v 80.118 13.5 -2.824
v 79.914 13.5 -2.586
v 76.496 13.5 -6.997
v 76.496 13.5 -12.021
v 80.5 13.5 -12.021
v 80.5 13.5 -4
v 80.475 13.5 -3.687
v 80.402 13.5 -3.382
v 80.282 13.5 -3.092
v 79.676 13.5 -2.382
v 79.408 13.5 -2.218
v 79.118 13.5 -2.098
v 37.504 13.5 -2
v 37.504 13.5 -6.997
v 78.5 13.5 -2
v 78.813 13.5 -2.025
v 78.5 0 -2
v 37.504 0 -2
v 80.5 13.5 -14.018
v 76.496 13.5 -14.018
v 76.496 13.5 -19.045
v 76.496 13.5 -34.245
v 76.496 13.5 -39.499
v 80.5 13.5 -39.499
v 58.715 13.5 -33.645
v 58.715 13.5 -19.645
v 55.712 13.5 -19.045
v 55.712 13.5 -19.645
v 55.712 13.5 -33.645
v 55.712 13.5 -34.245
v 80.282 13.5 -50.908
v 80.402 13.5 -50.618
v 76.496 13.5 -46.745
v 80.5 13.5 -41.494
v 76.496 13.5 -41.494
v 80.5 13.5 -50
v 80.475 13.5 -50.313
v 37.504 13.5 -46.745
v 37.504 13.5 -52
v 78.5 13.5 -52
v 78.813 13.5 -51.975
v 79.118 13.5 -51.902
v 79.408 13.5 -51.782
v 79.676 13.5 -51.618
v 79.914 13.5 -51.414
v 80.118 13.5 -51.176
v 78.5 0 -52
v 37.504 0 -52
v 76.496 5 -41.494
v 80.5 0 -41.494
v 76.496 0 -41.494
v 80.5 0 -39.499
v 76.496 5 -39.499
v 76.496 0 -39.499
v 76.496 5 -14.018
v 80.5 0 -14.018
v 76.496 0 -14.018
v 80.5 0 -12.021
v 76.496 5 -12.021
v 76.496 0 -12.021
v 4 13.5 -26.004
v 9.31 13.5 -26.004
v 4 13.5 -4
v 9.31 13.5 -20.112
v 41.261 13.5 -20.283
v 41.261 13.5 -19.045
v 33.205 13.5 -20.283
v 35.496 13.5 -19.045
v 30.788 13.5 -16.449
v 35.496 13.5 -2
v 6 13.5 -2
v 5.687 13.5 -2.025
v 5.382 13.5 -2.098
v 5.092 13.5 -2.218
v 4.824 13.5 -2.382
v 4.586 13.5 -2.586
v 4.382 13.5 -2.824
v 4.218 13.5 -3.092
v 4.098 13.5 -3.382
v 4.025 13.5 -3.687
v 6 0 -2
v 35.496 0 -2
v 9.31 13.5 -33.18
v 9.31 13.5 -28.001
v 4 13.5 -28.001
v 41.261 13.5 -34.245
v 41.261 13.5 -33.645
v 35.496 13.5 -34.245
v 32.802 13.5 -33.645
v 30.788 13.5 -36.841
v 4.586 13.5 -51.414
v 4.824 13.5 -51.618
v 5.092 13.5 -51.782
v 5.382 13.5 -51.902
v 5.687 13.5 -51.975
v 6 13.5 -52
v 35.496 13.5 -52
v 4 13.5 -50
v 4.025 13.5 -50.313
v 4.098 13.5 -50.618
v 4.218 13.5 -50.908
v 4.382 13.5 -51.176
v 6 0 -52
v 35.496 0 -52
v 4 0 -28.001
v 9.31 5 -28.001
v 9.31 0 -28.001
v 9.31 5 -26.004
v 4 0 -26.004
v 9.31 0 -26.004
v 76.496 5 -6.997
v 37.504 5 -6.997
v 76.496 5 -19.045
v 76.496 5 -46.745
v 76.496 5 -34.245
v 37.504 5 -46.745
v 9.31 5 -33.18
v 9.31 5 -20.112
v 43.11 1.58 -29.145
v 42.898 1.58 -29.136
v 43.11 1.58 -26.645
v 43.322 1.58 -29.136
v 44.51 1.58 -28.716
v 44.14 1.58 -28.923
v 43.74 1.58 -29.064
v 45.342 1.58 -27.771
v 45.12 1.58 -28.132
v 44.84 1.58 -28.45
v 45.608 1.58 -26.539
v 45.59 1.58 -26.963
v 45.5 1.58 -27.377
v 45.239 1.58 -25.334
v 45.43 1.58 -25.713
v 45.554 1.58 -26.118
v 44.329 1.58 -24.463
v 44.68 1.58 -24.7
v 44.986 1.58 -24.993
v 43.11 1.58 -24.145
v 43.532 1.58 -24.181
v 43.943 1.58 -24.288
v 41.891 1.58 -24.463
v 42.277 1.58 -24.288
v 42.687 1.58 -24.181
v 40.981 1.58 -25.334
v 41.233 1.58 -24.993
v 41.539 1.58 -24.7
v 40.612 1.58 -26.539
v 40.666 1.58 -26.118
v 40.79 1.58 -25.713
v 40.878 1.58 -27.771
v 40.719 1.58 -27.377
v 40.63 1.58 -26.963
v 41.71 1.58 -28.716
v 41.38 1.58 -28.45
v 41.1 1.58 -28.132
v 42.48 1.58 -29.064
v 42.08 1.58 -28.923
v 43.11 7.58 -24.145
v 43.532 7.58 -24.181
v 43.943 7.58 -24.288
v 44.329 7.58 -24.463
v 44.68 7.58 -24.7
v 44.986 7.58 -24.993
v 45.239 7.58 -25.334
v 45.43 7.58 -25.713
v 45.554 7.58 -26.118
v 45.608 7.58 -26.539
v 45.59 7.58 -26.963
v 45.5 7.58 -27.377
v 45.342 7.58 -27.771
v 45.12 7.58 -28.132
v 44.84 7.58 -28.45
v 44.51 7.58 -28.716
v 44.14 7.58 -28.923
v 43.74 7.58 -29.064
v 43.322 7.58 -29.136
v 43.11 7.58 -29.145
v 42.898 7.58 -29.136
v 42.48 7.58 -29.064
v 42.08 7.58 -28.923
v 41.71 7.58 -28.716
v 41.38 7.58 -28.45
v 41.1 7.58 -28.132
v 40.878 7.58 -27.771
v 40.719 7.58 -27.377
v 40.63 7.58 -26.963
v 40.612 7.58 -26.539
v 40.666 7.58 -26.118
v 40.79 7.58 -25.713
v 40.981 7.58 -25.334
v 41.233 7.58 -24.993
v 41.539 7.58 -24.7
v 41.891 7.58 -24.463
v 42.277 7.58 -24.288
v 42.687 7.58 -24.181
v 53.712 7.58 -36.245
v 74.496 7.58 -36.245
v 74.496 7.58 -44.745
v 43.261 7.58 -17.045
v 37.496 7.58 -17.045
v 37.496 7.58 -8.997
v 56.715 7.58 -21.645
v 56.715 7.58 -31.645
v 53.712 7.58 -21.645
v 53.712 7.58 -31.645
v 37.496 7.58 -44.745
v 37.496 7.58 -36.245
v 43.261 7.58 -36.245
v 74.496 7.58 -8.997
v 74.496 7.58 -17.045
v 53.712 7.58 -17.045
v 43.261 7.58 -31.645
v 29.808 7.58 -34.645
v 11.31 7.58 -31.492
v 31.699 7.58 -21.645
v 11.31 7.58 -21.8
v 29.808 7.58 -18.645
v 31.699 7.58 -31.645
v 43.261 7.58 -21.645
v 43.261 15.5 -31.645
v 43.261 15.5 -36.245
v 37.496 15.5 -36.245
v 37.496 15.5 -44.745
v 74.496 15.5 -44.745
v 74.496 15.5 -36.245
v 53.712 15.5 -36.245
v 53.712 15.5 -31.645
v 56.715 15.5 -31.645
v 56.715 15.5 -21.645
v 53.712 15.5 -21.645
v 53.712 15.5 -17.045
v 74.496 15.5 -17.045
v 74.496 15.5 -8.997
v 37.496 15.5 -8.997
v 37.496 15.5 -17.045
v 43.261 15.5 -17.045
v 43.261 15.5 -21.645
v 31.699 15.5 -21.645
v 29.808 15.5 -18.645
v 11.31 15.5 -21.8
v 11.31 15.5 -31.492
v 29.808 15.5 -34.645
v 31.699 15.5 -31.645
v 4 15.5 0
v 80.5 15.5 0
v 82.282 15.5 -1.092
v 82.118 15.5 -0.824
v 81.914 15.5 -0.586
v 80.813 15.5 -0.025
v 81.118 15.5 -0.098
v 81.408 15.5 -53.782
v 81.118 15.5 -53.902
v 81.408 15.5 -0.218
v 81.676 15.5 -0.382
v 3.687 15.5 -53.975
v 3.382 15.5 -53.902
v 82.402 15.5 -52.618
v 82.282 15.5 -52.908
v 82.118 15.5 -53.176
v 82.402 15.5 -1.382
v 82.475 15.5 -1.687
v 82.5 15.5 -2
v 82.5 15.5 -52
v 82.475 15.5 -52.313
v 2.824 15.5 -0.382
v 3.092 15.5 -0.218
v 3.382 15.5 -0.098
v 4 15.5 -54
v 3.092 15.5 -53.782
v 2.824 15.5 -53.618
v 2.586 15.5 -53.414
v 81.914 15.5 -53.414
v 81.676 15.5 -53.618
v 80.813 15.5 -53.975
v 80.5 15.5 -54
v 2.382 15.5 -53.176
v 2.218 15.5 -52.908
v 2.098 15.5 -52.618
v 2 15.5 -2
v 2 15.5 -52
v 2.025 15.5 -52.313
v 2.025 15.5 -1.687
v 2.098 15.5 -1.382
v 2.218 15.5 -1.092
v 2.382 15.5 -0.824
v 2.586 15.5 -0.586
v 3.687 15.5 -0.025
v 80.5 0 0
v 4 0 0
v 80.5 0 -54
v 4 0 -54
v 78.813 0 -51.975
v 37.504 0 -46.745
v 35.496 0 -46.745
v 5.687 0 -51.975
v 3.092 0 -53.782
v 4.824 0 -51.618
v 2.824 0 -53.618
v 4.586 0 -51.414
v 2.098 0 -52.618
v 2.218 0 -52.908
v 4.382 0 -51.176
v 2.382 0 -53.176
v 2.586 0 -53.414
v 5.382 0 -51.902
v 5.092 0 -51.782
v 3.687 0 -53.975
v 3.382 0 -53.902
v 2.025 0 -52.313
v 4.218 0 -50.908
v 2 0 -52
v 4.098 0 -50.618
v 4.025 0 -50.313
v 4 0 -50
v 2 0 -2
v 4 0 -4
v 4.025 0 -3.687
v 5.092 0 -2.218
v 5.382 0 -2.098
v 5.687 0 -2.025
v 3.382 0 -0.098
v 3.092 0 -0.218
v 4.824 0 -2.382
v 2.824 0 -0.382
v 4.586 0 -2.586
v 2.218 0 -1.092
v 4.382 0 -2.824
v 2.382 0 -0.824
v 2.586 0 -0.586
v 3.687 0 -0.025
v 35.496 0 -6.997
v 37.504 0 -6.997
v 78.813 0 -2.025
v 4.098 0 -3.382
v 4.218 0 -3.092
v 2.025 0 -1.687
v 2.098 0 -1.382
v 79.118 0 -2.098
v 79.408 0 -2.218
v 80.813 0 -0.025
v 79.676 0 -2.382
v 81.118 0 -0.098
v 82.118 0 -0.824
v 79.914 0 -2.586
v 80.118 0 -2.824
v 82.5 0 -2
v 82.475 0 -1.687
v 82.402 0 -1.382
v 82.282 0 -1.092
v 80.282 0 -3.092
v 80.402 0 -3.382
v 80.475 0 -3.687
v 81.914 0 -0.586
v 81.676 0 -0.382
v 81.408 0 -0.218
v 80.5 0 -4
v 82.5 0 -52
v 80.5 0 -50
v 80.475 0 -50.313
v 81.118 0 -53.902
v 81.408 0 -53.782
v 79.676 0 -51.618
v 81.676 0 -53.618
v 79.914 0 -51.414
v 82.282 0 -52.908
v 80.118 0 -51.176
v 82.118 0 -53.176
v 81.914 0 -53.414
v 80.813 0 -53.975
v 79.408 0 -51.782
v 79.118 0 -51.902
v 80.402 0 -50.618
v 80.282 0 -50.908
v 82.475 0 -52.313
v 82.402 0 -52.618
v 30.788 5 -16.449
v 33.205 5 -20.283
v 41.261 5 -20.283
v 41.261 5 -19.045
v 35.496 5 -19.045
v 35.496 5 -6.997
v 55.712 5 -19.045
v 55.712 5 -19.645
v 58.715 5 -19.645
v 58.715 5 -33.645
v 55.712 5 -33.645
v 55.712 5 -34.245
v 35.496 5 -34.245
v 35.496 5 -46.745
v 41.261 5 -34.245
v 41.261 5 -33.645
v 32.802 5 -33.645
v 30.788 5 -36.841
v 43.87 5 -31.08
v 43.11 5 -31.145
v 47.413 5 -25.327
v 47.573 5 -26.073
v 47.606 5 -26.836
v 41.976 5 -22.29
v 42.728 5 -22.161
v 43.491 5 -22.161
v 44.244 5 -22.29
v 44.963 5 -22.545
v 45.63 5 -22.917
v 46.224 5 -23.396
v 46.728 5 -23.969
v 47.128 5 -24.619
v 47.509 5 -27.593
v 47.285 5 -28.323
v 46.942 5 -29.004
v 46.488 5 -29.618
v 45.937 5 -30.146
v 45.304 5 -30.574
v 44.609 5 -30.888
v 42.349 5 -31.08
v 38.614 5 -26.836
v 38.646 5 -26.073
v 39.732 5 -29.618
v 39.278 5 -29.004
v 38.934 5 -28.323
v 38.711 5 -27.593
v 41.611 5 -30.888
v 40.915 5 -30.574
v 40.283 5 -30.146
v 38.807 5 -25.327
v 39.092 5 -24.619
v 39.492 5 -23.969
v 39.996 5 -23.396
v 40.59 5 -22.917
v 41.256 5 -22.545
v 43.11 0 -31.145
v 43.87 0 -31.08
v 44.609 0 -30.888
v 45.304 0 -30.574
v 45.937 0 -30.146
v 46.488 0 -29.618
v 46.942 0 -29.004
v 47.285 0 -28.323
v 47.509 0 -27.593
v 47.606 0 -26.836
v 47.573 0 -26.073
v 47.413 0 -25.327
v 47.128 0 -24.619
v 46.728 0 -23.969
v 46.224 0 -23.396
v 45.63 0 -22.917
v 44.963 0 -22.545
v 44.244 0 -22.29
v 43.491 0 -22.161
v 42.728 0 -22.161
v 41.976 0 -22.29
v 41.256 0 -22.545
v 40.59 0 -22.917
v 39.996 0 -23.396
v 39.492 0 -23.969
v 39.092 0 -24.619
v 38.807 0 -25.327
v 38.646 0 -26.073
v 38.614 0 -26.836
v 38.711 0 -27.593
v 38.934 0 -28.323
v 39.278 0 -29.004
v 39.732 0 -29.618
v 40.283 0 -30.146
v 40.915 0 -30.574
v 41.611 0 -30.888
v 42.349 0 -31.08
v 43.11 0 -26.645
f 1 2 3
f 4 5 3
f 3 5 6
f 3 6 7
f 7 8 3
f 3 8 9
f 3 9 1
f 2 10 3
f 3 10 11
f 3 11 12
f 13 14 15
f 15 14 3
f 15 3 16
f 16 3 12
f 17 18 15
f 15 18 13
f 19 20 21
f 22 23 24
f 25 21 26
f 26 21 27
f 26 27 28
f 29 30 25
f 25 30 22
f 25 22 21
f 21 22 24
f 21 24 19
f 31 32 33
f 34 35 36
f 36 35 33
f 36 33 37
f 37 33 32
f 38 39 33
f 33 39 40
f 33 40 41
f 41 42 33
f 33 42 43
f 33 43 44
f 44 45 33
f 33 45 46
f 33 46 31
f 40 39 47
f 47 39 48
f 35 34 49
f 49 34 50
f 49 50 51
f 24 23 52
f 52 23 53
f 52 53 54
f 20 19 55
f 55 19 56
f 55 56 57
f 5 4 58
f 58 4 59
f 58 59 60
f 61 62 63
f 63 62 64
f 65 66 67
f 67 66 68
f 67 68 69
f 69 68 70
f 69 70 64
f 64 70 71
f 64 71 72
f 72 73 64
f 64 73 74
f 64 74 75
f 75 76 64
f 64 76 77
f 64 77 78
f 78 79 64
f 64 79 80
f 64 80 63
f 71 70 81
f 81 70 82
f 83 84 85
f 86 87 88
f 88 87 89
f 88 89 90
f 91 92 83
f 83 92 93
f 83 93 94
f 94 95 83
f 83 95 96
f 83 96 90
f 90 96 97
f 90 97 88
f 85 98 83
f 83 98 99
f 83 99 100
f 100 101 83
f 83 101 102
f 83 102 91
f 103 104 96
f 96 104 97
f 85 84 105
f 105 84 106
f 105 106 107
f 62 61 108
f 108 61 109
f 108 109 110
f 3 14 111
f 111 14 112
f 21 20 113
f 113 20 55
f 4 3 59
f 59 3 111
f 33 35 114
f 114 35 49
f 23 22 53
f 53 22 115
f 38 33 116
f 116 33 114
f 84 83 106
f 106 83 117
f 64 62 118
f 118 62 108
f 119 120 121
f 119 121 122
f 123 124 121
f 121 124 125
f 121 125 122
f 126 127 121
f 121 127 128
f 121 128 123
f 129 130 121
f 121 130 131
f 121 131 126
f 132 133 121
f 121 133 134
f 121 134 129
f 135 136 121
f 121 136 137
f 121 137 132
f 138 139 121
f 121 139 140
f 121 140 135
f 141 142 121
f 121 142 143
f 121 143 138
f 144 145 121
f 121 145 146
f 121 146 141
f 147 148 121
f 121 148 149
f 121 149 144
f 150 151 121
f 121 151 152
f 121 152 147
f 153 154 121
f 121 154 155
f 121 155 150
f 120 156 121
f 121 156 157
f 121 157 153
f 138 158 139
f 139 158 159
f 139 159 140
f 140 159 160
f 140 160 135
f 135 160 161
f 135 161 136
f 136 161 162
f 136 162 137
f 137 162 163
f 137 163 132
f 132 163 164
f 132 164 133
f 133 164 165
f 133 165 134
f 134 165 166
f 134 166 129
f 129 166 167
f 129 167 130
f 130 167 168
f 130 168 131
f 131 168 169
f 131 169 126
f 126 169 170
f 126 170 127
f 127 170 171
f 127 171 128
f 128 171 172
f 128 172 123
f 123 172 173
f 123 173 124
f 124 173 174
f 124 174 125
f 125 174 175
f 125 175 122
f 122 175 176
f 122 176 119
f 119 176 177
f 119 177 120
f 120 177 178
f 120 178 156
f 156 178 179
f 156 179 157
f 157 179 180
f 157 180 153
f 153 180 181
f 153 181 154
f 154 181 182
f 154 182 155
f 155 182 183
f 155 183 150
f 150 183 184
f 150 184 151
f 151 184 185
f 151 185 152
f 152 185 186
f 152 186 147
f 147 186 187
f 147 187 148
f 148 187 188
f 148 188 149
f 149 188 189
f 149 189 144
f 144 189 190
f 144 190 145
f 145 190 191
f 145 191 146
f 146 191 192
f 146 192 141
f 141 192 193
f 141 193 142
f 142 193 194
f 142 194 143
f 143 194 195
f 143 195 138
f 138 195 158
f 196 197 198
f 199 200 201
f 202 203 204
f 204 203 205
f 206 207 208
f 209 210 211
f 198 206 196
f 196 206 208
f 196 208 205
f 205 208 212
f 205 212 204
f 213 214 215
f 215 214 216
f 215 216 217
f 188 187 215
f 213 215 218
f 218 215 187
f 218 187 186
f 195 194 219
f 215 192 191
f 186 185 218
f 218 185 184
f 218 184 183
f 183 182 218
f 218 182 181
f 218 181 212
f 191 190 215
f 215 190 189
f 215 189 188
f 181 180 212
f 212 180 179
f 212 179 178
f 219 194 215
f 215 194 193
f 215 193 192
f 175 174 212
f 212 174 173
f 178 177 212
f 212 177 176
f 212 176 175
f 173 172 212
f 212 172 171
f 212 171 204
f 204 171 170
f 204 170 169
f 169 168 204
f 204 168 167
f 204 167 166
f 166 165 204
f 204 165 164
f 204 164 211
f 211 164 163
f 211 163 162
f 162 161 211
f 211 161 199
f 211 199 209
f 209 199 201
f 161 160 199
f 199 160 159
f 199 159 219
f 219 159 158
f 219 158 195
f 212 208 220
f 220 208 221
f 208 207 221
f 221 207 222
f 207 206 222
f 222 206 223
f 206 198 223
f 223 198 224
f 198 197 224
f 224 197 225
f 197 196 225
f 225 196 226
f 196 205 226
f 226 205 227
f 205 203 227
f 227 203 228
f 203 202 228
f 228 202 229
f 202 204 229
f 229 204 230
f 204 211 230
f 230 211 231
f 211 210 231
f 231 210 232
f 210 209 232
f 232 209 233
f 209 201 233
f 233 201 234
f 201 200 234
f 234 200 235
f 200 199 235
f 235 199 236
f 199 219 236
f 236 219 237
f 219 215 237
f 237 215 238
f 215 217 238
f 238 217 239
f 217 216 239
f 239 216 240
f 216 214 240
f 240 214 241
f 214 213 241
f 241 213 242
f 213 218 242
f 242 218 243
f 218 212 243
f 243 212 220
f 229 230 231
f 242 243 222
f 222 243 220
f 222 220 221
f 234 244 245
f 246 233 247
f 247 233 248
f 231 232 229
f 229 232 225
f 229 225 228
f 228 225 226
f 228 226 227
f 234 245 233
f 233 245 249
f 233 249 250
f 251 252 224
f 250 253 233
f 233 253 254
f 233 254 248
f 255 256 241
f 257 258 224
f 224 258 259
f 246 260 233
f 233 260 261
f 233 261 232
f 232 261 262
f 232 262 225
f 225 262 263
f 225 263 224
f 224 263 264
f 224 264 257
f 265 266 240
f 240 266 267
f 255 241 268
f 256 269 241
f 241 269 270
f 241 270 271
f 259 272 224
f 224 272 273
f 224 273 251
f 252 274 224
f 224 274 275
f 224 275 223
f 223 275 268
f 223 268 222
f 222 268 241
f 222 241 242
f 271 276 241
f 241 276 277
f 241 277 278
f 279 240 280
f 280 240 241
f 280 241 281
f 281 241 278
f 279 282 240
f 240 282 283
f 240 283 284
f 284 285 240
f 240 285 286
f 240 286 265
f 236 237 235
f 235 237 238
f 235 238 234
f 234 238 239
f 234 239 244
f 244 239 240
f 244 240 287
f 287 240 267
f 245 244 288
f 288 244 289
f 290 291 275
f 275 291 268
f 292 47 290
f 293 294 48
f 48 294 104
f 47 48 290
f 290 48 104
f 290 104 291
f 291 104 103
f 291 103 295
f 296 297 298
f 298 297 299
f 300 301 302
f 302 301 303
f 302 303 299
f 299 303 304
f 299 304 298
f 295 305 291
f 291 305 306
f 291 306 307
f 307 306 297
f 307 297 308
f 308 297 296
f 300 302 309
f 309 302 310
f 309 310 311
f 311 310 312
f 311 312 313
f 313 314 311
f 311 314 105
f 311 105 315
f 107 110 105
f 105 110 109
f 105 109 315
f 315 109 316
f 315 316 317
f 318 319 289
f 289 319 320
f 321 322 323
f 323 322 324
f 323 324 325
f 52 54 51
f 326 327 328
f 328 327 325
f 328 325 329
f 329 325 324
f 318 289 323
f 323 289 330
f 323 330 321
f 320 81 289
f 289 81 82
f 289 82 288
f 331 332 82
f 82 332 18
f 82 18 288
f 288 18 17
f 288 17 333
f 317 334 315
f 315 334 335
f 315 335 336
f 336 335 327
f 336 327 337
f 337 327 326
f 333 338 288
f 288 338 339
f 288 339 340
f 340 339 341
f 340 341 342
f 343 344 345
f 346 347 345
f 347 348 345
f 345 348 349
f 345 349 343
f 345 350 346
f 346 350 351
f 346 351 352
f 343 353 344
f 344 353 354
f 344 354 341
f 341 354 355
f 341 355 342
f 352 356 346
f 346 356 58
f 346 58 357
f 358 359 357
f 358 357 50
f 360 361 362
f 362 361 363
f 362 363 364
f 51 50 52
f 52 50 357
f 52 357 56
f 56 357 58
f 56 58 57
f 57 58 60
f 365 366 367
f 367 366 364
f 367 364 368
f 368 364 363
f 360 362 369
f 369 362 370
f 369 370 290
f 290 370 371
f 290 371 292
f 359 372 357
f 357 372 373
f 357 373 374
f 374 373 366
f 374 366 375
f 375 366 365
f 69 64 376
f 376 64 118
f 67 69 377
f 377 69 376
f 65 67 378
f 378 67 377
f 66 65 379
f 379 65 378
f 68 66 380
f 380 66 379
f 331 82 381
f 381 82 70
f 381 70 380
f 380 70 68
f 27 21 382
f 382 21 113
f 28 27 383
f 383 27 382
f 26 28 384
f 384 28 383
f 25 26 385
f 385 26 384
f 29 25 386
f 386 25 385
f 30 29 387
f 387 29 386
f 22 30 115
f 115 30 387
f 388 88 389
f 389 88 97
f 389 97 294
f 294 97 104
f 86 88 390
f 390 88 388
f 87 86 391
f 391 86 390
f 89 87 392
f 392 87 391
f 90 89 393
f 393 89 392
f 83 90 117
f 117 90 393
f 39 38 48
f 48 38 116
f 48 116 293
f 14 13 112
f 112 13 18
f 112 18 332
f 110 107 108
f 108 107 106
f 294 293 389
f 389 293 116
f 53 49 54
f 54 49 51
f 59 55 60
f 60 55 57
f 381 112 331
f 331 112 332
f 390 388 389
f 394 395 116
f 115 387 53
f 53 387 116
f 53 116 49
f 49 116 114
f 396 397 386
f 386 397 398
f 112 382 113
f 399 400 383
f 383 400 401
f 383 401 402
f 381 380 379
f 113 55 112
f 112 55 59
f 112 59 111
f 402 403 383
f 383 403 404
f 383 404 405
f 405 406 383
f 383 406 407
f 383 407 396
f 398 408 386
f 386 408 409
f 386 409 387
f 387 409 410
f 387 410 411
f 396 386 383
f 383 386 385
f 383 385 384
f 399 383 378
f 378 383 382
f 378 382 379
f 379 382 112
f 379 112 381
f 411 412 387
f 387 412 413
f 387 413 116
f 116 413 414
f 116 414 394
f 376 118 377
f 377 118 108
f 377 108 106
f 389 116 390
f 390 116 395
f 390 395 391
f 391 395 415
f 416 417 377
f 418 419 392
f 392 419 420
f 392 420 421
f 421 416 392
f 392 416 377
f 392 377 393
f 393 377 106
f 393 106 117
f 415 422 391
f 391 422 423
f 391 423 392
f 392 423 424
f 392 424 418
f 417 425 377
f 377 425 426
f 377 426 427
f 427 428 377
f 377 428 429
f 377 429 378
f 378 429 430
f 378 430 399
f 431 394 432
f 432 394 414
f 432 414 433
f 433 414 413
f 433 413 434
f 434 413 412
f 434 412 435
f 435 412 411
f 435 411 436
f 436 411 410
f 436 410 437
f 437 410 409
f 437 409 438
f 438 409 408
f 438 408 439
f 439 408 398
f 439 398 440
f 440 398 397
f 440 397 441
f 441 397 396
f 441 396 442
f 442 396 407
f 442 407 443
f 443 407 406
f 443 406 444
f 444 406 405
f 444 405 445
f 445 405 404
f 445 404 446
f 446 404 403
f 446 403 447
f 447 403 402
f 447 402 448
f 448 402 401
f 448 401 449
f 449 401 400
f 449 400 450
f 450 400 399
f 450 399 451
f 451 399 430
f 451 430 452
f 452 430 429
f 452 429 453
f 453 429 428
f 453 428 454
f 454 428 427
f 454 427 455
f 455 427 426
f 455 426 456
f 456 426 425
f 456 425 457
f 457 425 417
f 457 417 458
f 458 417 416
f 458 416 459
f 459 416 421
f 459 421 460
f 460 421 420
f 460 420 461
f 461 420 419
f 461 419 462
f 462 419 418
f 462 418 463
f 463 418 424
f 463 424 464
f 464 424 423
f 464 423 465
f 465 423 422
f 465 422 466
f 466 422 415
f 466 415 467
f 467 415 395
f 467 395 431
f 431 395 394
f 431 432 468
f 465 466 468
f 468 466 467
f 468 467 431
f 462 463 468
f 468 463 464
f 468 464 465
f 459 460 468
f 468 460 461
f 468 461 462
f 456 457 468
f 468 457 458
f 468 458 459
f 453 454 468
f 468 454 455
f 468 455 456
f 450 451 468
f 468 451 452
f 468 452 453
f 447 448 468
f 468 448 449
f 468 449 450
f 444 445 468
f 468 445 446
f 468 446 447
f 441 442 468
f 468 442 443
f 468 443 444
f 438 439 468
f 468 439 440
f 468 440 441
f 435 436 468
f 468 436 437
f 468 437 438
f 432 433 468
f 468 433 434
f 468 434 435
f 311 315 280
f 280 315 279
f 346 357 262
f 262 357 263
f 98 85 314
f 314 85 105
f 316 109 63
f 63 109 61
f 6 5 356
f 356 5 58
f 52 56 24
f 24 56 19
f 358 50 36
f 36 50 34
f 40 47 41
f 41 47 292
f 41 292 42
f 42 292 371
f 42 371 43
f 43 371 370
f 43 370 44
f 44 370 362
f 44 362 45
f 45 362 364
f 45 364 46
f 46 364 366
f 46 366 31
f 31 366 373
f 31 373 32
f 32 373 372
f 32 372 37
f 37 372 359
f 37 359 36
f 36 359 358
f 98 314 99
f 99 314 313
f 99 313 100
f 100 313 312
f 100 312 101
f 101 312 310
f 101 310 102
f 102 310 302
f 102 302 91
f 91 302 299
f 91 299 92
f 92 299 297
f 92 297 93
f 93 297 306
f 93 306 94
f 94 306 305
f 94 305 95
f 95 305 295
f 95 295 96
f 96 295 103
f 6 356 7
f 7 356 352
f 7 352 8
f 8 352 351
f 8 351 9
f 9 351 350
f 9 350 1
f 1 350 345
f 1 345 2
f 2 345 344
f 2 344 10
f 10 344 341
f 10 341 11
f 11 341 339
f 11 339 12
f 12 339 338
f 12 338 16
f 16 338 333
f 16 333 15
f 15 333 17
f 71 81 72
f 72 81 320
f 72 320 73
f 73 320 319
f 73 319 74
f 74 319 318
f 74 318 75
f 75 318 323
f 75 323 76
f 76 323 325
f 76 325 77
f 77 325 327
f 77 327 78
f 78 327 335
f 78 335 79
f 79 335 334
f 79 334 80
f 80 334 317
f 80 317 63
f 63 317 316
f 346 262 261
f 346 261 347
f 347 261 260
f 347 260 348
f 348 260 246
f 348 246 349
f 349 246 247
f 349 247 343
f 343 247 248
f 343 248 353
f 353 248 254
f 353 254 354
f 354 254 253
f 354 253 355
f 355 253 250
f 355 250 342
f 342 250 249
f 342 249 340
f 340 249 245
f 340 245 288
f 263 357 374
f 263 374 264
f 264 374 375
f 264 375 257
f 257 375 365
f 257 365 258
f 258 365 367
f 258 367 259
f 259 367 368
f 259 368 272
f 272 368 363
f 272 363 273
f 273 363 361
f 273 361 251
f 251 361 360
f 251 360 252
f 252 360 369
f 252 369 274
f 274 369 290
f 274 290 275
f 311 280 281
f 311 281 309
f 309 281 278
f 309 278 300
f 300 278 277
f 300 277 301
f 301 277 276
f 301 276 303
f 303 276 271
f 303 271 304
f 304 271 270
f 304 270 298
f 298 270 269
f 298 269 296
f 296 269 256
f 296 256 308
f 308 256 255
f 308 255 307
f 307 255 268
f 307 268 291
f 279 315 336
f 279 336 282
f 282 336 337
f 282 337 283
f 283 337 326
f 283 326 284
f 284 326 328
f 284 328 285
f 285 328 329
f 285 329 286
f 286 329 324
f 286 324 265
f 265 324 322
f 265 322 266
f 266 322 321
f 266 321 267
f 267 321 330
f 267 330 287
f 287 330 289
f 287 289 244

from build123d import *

# Parameters (mm, degrees)
SKETCH1_W           = 84.5
SKETCH1_H           = 54
BOSS_EXTRUDE2_DEPTH = 15.5
FILLET1_R           = 2
Y_WING_START        = -26.76167351
Y_WING_DEPTH        = 8
Y_WING_START_2      = -32.76167351
Y_WING_2_OUTLINE_R  = 2.5
Y_WING_2_DEPTH      = 6
SKETCH2_W           = 80.5
SKETCH2_H           = 50
CUT_EXTRUDE1_DEPTH  = 13.5
SKETCH3_W           = 2.008539682
SKETCH3_H           = 5.255332567
SKETCH3_H_2         = 4.996733938
BOSS_EXTRUDE3_DEPTH = 13.5
SKETCH4_R           = 4.5
CUT_EXTRUDE2_DEPTH  = 5
SKETCH5_W           = 2
SKETCH5_H           = 54
CUT_EXTRUDE3_DEPTH  = 15.5
SKETCH6_W           = 2
SKETCH6_H           = 50
BOSS_EXTRUDE4_DEPTH = 13.5
FILLET2_R           = 2


with BuildPart() as part:
    # Sketch1 → Boss-Extrude2 (new body)
    with BuildSketch(Plane(origin=(0, 0, 0), x_dir=(1, 0, 0), z_dir=(0, 1, 0))):
        with Locations((42.25, 27)):
            Rectangle(SKETCH1_W, SKETCH1_H)
    extrude(amount=BOSS_EXTRUDE2_DEPTH)

    # Fillet1
    fillet1_edges = [part.edges().sort_by_distance(p)[0] for p in [
        (0, 7.75, -54),
        (84.5, 7.75, -54),
        (84.5, 7.75, 0),
        (0, 7.75, 0),
    ]]
    fillet(fillet1_edges, radius=FILLET1_R)


with BuildPart() as body_2:
    # Y-Wing: read off the stored shape, not the designer's step
    # Y-Wing outline → Y-Wing (new body)
    with BuildSketch(Plane(origin=(0, 0, 0), x_dir=(1, 0, 0), z_dir=(0, 1, 0)).offset(Y_WING_START)):
        Polygon((-37.998848216, 80.77793428), (-49.561243891, 80.77793428), (-51.452110178, 83.77793428), (-69.950345376, 80.625586413), (-69.950345376, 70.93293428), (-51.452110178, 67.77793428), (-49.561243891, 70.77793428), (-37.998848216, 70.77793428), (-37.998848216, 66.17793428), (-43.764531914, 66.17793428), (-43.764531914, 58.130000785), (-6.764531914, 58.130000785), (-6.764531914, 66.17793428), (-27.548546514, 66.17793428), (-27.548546514, 70.77793428), (-24.545586254, 70.77793428), (-24.545586254, 80.77793428), (-27.548546514, 80.77793428), (-27.548546514, 85.37793428), (-6.764531914, 85.37793428), (-6.764531914, 93.87793428), (-43.764531914, 93.87793428), (-43.764531914, 85.37793428), (-37.998848216, 85.37793428), align=None)
    extrude(amount=Y_WING_DEPTH)

    # Y-Wing 2 outline → Y-Wing 2 (add)
    with BuildSketch(Plane(origin=(0, 0, 0), x_dir=(1, 0, 0), z_dir=(0, 1, 0)).offset(Y_WING_START_2)):
        with Locations((-38.150345376, 75.778331613)):
            Circle(Y_WING_2_OUTLINE_R)
    extrude(amount=Y_WING_2_DEPTH)


with BuildPart() as body_2_1:
    # Body-Move/Copy3: moved
    add(body_2.part.moved(Location((81.260162004, 34.341820547, 49.133266847))))


with BuildPart() as part_1:
    add(part.part)

    # Intersect1: read off the stored shape, not the designer's step
    # Intersect1: cut body 2
    add(body_2_1.part, mode=Mode.SUBTRACT)

    # Sketch2 → Cut-Extrude1 (cut)
    with BuildSketch(Plane.XZ):
        with Locations((42.25, -27)):
            Rectangle(SKETCH2_W, SKETCH2_H)
        Polygon((30.788040431, -16.448642605), (33.204506118, -20.282545146), (41.261313787, -20.282545146), (41.261313787, -19.044667433), (35.495630089, -19.044667433), (35.495630089, -6.996733938), (76.495630089, -6.996733938), (76.495630089, -19.044667433), (55.71161549, -19.044667433), (55.71161549, -19.644667433), (58.714575749, -19.644667433), (58.714575749, -33.644667433), (55.71161549, -33.644667433), (55.71161549, -34.244667433), (76.495630089, -34.244667433), (76.495630089, -46.744667433), (35.495630089, -46.744667433), (35.495630089, -34.244667433), (41.261313787, -34.244667433), (41.261313787, -33.644667433), (36.074948333, -33.644667433), (32.802458964, -33.644667433), (30.788147827, -36.840521868), (9.309816627, -33.180325595), (9.309816627, -20.111899958), align=None, mode=Mode.SUBTRACT)
    extrude(amount=-CUT_EXTRUDE1_DEPTH, mode=Mode.SUBTRACT)

    # Sketch3 → Boss-Extrude3 (add)
    with BuildSketch(Plane.XZ.offset(-13.5)):
        Polygon((2, -27), (2, -28.000523913), (9.309816627, -28.000523913), (9.309816627, -27), (9.309816627, -26.003783182), (2, -26.003783182), align=None)
        with Locations((36.49989993, -49.372333717)):
            Rectangle(SKETCH3_W, SKETCH3_H)
        Polygon((76.495630089, -40.494667433), (76.495630089, -39.49850229), (82.5, -39.49850229), (82.5, -40.494667433), (82.5, -41.494277076), (76.495630089, -41.494277076), align=None)
        Polygon((76.495630089, -13.020700685), (76.495630089, -14.018243481), (82.5, -14.018243481), (82.5, -13.020700685), (82.5, -12.020776308), (76.495630089, -12.020776308), align=None)
        with Locations((36.49989993, -4.498366969)):
            Rectangle(SKETCH3_W, SKETCH3_H_2)
    extrude(amount=BOSS_EXTRUDE3_DEPTH)

    # Sketch4 → Cut-Extrude2 (cut)
    with BuildSketch(Plane.XZ):
        Polygon((9.309816627, -20.111899958), (30.788040431, -16.448642605), (33.204506118, -20.282545146), (41.261313787, -20.282545146), (41.261313787, -19.044667433), (35.495630089, -19.044667433), (35.495630089, -6.996733938), (76.495630089, -6.996733938), (76.495630089, -19.044667433), (55.71161549, -19.044667433), (55.71161549, -19.644667433), (58.714575749, -19.644667433), (58.714575749, -33.644667433), (55.71161549, -33.644667433), (55.71161549, -34.244667433), (76.495630089, -34.244667433), (76.495630089, -46.744667433), (35.495630089, -46.744667433), (35.495630089, -34.244667433), (41.261313787, -34.244667433), (41.261313787, -33.644667433), (32.802458964, -33.644667433), (30.788147827, -36.840521868), (9.309816627, -33.180325595), align=None)
        with Locations(Location((43.109816627, -26.645064766, 0), (0, 0, 270))):
            Circle(SKETCH4_R, mode=Mode.SUBTRACT)
    extrude(amount=-CUT_EXTRUDE2_DEPTH, mode=Mode.SUBTRACT)

    # Sketch5 → Cut-Extrude3 (cut)
    with BuildSketch(Plane(origin=(0, 0, 0), x_dir=(-1, 0, 0), z_dir=(0, -1, 0))):
        with Locations((-1, 27)):
            Rectangle(SKETCH5_W, SKETCH5_H)
        with Locations((-83.5, 27)):
            Rectangle(SKETCH5_W, SKETCH5_H)
    extrude(amount=-CUT_EXTRUDE3_DEPTH, mode=Mode.SUBTRACT)

    # Sketch6 → Boss-Extrude4 (add)
    with BuildSketch(Plane(origin=(0, 13.5, 0), x_dir=(-1, 0, 0), z_dir=(0, -1, 0))):
        with Locations((-3, 27)):
            Rectangle(SKETCH6_W, SKETCH6_H)
        with Locations((-81.5, 27)):
            Rectangle(SKETCH6_W, SKETCH6_H)
    extrude(amount=BOSS_EXTRUDE4_DEPTH)

    # Fillet2
    fillet2_edges = [part_1.edges().sort_by_distance(p)[0] for p in [
        (82.5, 7.75, -54),
        (2, 7.75, -54),
        (82.5, 7.75, 0),
        (2, 7.75, 0),
        (4, 6.75, -52),
        (4, 6.75, -2),
        (80.5, 6.75, -2),
        (80.5, 6.75, -52),
    ]]
    fillet(fillet2_edges, radius=FILLET2_R)


solid = part_1.part
